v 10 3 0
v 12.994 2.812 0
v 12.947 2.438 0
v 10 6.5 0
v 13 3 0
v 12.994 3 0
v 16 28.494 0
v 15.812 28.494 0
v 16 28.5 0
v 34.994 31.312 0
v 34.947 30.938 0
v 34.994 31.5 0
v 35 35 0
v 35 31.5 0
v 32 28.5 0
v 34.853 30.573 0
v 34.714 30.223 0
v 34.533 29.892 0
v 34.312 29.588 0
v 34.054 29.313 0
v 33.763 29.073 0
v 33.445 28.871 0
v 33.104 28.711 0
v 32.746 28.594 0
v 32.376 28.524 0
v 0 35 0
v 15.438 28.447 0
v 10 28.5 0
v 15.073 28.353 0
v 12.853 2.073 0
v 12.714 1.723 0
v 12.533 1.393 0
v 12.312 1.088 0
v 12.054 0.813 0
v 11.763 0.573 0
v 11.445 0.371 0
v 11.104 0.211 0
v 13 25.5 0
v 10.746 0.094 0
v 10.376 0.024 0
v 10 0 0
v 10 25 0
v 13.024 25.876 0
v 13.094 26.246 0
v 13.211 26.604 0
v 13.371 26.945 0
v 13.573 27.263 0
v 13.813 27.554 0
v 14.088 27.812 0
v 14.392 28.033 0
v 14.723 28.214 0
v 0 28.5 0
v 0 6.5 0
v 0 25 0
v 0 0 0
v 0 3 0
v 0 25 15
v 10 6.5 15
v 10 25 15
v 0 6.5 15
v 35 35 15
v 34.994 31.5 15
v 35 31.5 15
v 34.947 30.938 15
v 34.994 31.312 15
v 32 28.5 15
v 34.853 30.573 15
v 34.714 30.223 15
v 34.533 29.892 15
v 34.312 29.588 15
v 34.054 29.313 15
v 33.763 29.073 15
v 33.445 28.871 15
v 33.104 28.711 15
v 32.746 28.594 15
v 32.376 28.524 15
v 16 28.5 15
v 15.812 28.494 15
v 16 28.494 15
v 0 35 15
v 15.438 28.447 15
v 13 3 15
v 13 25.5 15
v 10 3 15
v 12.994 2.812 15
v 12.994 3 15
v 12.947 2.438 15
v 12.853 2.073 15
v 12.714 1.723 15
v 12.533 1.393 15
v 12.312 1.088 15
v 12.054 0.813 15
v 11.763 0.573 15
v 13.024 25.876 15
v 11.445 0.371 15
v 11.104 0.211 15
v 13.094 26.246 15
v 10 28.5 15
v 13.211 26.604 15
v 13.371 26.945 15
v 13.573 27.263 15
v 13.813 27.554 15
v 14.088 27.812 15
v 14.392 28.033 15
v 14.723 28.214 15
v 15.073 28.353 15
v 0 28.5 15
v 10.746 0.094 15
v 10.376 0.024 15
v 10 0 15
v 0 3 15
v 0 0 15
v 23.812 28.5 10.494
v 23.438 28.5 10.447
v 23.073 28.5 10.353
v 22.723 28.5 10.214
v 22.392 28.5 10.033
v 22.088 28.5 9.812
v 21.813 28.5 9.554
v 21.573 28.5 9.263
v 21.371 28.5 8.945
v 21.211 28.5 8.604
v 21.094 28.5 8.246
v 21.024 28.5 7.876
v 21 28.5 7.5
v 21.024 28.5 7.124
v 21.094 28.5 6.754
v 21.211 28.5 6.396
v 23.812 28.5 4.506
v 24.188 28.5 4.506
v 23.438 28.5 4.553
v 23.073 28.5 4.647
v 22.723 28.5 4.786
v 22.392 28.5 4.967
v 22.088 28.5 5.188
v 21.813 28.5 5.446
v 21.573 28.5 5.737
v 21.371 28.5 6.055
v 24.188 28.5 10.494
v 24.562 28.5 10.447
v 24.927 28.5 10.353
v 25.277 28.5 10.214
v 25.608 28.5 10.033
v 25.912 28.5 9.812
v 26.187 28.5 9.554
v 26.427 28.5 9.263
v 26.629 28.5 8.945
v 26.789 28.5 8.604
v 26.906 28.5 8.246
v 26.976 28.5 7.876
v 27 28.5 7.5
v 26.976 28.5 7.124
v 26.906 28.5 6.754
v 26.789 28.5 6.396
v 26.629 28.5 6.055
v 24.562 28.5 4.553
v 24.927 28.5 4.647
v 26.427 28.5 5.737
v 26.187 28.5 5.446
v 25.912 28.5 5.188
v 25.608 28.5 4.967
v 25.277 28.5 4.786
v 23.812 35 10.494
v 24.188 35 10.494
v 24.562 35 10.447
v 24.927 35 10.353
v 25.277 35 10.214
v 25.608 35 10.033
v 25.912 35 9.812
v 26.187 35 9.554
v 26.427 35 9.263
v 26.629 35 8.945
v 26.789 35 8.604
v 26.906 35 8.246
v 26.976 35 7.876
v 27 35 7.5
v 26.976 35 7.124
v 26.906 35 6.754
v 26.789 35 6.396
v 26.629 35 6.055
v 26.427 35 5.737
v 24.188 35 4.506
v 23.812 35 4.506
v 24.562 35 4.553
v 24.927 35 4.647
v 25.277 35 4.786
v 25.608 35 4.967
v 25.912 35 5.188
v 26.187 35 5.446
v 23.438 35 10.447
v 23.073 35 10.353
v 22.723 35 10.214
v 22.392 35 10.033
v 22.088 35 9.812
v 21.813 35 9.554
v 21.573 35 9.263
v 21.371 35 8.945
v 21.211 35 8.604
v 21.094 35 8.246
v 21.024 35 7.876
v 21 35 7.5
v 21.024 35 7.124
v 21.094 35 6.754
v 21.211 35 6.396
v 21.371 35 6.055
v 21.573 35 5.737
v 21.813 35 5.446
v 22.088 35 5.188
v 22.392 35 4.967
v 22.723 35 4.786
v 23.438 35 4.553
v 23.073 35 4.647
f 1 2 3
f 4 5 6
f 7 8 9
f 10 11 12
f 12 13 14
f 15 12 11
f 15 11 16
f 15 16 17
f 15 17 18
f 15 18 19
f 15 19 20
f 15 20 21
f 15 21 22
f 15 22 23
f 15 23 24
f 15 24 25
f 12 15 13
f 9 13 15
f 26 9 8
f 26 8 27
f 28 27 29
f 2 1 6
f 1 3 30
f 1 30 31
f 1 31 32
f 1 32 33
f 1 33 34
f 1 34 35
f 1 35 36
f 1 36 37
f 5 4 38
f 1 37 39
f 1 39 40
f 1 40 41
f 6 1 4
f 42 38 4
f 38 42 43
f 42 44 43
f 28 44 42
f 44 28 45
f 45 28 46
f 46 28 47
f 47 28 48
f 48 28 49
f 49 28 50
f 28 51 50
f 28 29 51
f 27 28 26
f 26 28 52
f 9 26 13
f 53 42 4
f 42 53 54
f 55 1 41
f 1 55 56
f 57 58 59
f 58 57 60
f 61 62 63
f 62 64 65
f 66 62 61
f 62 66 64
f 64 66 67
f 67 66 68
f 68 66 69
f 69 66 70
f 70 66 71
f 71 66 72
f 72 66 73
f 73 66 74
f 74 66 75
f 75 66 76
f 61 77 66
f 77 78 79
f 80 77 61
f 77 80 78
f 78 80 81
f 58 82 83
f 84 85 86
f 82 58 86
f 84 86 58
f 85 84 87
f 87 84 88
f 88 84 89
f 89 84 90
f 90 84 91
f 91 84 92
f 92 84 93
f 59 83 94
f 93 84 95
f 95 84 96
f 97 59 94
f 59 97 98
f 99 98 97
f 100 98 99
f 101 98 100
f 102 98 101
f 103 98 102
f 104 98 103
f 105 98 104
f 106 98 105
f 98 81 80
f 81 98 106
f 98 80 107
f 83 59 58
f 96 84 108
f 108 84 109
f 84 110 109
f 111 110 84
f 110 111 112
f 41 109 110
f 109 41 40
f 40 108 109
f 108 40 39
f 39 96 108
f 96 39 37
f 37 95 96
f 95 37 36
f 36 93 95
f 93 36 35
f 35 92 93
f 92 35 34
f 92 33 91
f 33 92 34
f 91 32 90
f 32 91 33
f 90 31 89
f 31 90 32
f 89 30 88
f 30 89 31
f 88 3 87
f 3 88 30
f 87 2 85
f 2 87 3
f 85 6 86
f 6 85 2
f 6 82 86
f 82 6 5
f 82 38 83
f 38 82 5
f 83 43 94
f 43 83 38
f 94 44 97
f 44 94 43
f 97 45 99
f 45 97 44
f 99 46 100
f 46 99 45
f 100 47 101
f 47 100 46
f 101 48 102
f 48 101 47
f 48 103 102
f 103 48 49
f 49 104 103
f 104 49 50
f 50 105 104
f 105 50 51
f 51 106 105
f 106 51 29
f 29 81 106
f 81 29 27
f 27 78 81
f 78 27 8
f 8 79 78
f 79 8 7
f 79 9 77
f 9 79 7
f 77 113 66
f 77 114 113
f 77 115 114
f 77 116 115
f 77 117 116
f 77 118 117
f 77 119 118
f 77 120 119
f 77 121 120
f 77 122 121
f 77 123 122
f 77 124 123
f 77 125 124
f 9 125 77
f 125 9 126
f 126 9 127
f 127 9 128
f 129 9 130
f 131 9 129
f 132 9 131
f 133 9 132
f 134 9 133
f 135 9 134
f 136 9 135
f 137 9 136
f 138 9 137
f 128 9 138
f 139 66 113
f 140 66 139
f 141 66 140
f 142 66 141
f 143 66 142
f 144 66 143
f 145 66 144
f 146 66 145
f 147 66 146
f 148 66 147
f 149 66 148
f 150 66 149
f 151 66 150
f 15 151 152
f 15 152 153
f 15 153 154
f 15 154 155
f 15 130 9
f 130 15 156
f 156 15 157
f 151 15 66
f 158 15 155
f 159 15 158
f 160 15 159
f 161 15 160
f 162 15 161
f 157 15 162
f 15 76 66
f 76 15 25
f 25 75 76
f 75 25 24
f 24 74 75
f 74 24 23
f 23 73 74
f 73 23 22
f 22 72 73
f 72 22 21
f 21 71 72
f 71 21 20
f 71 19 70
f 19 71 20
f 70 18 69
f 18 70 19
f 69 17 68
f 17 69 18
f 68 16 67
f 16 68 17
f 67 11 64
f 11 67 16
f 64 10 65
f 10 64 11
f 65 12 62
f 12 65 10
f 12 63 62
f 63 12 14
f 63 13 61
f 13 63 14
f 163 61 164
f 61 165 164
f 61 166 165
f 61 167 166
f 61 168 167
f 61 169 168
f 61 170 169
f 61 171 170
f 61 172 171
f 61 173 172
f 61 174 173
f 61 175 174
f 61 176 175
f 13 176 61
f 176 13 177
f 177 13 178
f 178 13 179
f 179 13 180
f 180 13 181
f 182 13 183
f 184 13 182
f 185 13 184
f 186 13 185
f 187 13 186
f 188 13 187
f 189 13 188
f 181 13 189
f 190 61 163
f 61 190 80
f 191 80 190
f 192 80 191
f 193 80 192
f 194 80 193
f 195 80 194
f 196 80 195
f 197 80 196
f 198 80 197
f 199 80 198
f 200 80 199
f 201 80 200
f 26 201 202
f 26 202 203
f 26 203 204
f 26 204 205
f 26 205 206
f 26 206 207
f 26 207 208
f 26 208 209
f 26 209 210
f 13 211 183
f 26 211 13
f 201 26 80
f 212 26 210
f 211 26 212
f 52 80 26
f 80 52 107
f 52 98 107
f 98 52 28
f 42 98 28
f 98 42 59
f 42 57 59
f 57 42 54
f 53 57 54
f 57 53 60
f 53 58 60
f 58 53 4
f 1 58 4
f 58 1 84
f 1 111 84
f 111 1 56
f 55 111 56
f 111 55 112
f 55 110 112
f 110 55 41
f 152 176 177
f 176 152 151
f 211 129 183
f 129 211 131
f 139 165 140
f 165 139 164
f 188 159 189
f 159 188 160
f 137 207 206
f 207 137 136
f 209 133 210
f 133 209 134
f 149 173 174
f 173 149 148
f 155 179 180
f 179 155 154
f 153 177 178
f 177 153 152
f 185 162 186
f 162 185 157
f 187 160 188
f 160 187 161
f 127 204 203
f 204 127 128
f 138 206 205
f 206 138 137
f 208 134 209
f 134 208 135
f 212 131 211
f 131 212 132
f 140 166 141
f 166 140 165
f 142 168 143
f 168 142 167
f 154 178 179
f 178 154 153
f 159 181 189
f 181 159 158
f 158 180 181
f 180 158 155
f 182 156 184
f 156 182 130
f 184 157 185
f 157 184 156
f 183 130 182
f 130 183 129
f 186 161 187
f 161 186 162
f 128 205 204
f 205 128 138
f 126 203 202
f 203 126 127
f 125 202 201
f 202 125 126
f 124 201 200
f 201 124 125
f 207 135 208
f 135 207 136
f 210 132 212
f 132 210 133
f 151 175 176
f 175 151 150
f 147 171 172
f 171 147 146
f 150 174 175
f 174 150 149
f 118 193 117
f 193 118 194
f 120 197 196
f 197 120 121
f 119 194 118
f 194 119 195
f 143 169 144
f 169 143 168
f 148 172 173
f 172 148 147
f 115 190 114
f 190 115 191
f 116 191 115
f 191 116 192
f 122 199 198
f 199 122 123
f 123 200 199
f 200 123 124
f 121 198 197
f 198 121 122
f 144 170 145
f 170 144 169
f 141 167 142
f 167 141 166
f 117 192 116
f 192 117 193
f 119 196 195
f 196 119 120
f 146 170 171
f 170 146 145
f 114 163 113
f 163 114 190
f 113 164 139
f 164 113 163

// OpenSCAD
$fn=50;

h=15;

difference(){

	linear_extrude(h)
	difference() {

		square([35, 35]);
		
		translate([0, 3, 0])
			square([10, 3.5]);
		translate([0, 22+3+3.5, 0])
			square([10, 3.5]);
		
		da=6;
		
		translate([13, 0, 0])
			square([35, 28.5-da/2]);
		
		translate([13+da/2, 28.5-da/2, 0])
			circle(d=da);

		translate([13+da/2, 0, 0])
			square([35, 28.5]);
		
		translate([35-da/2, 28.5+da/2])
		rotate([0, 0, 270])
		difference() {
			square([da, da]);
			circle(d=da);
		}

		translate([13-da/2, da/2])
		rotate([0, 0, 270])
		difference() {
			square([da, da]);
			circle(d=da);
		}
	}
	
	translate([24, 28, h/2])
	rotate([-90, 0, 0])
		cylinder(d=6, h=10);
}
